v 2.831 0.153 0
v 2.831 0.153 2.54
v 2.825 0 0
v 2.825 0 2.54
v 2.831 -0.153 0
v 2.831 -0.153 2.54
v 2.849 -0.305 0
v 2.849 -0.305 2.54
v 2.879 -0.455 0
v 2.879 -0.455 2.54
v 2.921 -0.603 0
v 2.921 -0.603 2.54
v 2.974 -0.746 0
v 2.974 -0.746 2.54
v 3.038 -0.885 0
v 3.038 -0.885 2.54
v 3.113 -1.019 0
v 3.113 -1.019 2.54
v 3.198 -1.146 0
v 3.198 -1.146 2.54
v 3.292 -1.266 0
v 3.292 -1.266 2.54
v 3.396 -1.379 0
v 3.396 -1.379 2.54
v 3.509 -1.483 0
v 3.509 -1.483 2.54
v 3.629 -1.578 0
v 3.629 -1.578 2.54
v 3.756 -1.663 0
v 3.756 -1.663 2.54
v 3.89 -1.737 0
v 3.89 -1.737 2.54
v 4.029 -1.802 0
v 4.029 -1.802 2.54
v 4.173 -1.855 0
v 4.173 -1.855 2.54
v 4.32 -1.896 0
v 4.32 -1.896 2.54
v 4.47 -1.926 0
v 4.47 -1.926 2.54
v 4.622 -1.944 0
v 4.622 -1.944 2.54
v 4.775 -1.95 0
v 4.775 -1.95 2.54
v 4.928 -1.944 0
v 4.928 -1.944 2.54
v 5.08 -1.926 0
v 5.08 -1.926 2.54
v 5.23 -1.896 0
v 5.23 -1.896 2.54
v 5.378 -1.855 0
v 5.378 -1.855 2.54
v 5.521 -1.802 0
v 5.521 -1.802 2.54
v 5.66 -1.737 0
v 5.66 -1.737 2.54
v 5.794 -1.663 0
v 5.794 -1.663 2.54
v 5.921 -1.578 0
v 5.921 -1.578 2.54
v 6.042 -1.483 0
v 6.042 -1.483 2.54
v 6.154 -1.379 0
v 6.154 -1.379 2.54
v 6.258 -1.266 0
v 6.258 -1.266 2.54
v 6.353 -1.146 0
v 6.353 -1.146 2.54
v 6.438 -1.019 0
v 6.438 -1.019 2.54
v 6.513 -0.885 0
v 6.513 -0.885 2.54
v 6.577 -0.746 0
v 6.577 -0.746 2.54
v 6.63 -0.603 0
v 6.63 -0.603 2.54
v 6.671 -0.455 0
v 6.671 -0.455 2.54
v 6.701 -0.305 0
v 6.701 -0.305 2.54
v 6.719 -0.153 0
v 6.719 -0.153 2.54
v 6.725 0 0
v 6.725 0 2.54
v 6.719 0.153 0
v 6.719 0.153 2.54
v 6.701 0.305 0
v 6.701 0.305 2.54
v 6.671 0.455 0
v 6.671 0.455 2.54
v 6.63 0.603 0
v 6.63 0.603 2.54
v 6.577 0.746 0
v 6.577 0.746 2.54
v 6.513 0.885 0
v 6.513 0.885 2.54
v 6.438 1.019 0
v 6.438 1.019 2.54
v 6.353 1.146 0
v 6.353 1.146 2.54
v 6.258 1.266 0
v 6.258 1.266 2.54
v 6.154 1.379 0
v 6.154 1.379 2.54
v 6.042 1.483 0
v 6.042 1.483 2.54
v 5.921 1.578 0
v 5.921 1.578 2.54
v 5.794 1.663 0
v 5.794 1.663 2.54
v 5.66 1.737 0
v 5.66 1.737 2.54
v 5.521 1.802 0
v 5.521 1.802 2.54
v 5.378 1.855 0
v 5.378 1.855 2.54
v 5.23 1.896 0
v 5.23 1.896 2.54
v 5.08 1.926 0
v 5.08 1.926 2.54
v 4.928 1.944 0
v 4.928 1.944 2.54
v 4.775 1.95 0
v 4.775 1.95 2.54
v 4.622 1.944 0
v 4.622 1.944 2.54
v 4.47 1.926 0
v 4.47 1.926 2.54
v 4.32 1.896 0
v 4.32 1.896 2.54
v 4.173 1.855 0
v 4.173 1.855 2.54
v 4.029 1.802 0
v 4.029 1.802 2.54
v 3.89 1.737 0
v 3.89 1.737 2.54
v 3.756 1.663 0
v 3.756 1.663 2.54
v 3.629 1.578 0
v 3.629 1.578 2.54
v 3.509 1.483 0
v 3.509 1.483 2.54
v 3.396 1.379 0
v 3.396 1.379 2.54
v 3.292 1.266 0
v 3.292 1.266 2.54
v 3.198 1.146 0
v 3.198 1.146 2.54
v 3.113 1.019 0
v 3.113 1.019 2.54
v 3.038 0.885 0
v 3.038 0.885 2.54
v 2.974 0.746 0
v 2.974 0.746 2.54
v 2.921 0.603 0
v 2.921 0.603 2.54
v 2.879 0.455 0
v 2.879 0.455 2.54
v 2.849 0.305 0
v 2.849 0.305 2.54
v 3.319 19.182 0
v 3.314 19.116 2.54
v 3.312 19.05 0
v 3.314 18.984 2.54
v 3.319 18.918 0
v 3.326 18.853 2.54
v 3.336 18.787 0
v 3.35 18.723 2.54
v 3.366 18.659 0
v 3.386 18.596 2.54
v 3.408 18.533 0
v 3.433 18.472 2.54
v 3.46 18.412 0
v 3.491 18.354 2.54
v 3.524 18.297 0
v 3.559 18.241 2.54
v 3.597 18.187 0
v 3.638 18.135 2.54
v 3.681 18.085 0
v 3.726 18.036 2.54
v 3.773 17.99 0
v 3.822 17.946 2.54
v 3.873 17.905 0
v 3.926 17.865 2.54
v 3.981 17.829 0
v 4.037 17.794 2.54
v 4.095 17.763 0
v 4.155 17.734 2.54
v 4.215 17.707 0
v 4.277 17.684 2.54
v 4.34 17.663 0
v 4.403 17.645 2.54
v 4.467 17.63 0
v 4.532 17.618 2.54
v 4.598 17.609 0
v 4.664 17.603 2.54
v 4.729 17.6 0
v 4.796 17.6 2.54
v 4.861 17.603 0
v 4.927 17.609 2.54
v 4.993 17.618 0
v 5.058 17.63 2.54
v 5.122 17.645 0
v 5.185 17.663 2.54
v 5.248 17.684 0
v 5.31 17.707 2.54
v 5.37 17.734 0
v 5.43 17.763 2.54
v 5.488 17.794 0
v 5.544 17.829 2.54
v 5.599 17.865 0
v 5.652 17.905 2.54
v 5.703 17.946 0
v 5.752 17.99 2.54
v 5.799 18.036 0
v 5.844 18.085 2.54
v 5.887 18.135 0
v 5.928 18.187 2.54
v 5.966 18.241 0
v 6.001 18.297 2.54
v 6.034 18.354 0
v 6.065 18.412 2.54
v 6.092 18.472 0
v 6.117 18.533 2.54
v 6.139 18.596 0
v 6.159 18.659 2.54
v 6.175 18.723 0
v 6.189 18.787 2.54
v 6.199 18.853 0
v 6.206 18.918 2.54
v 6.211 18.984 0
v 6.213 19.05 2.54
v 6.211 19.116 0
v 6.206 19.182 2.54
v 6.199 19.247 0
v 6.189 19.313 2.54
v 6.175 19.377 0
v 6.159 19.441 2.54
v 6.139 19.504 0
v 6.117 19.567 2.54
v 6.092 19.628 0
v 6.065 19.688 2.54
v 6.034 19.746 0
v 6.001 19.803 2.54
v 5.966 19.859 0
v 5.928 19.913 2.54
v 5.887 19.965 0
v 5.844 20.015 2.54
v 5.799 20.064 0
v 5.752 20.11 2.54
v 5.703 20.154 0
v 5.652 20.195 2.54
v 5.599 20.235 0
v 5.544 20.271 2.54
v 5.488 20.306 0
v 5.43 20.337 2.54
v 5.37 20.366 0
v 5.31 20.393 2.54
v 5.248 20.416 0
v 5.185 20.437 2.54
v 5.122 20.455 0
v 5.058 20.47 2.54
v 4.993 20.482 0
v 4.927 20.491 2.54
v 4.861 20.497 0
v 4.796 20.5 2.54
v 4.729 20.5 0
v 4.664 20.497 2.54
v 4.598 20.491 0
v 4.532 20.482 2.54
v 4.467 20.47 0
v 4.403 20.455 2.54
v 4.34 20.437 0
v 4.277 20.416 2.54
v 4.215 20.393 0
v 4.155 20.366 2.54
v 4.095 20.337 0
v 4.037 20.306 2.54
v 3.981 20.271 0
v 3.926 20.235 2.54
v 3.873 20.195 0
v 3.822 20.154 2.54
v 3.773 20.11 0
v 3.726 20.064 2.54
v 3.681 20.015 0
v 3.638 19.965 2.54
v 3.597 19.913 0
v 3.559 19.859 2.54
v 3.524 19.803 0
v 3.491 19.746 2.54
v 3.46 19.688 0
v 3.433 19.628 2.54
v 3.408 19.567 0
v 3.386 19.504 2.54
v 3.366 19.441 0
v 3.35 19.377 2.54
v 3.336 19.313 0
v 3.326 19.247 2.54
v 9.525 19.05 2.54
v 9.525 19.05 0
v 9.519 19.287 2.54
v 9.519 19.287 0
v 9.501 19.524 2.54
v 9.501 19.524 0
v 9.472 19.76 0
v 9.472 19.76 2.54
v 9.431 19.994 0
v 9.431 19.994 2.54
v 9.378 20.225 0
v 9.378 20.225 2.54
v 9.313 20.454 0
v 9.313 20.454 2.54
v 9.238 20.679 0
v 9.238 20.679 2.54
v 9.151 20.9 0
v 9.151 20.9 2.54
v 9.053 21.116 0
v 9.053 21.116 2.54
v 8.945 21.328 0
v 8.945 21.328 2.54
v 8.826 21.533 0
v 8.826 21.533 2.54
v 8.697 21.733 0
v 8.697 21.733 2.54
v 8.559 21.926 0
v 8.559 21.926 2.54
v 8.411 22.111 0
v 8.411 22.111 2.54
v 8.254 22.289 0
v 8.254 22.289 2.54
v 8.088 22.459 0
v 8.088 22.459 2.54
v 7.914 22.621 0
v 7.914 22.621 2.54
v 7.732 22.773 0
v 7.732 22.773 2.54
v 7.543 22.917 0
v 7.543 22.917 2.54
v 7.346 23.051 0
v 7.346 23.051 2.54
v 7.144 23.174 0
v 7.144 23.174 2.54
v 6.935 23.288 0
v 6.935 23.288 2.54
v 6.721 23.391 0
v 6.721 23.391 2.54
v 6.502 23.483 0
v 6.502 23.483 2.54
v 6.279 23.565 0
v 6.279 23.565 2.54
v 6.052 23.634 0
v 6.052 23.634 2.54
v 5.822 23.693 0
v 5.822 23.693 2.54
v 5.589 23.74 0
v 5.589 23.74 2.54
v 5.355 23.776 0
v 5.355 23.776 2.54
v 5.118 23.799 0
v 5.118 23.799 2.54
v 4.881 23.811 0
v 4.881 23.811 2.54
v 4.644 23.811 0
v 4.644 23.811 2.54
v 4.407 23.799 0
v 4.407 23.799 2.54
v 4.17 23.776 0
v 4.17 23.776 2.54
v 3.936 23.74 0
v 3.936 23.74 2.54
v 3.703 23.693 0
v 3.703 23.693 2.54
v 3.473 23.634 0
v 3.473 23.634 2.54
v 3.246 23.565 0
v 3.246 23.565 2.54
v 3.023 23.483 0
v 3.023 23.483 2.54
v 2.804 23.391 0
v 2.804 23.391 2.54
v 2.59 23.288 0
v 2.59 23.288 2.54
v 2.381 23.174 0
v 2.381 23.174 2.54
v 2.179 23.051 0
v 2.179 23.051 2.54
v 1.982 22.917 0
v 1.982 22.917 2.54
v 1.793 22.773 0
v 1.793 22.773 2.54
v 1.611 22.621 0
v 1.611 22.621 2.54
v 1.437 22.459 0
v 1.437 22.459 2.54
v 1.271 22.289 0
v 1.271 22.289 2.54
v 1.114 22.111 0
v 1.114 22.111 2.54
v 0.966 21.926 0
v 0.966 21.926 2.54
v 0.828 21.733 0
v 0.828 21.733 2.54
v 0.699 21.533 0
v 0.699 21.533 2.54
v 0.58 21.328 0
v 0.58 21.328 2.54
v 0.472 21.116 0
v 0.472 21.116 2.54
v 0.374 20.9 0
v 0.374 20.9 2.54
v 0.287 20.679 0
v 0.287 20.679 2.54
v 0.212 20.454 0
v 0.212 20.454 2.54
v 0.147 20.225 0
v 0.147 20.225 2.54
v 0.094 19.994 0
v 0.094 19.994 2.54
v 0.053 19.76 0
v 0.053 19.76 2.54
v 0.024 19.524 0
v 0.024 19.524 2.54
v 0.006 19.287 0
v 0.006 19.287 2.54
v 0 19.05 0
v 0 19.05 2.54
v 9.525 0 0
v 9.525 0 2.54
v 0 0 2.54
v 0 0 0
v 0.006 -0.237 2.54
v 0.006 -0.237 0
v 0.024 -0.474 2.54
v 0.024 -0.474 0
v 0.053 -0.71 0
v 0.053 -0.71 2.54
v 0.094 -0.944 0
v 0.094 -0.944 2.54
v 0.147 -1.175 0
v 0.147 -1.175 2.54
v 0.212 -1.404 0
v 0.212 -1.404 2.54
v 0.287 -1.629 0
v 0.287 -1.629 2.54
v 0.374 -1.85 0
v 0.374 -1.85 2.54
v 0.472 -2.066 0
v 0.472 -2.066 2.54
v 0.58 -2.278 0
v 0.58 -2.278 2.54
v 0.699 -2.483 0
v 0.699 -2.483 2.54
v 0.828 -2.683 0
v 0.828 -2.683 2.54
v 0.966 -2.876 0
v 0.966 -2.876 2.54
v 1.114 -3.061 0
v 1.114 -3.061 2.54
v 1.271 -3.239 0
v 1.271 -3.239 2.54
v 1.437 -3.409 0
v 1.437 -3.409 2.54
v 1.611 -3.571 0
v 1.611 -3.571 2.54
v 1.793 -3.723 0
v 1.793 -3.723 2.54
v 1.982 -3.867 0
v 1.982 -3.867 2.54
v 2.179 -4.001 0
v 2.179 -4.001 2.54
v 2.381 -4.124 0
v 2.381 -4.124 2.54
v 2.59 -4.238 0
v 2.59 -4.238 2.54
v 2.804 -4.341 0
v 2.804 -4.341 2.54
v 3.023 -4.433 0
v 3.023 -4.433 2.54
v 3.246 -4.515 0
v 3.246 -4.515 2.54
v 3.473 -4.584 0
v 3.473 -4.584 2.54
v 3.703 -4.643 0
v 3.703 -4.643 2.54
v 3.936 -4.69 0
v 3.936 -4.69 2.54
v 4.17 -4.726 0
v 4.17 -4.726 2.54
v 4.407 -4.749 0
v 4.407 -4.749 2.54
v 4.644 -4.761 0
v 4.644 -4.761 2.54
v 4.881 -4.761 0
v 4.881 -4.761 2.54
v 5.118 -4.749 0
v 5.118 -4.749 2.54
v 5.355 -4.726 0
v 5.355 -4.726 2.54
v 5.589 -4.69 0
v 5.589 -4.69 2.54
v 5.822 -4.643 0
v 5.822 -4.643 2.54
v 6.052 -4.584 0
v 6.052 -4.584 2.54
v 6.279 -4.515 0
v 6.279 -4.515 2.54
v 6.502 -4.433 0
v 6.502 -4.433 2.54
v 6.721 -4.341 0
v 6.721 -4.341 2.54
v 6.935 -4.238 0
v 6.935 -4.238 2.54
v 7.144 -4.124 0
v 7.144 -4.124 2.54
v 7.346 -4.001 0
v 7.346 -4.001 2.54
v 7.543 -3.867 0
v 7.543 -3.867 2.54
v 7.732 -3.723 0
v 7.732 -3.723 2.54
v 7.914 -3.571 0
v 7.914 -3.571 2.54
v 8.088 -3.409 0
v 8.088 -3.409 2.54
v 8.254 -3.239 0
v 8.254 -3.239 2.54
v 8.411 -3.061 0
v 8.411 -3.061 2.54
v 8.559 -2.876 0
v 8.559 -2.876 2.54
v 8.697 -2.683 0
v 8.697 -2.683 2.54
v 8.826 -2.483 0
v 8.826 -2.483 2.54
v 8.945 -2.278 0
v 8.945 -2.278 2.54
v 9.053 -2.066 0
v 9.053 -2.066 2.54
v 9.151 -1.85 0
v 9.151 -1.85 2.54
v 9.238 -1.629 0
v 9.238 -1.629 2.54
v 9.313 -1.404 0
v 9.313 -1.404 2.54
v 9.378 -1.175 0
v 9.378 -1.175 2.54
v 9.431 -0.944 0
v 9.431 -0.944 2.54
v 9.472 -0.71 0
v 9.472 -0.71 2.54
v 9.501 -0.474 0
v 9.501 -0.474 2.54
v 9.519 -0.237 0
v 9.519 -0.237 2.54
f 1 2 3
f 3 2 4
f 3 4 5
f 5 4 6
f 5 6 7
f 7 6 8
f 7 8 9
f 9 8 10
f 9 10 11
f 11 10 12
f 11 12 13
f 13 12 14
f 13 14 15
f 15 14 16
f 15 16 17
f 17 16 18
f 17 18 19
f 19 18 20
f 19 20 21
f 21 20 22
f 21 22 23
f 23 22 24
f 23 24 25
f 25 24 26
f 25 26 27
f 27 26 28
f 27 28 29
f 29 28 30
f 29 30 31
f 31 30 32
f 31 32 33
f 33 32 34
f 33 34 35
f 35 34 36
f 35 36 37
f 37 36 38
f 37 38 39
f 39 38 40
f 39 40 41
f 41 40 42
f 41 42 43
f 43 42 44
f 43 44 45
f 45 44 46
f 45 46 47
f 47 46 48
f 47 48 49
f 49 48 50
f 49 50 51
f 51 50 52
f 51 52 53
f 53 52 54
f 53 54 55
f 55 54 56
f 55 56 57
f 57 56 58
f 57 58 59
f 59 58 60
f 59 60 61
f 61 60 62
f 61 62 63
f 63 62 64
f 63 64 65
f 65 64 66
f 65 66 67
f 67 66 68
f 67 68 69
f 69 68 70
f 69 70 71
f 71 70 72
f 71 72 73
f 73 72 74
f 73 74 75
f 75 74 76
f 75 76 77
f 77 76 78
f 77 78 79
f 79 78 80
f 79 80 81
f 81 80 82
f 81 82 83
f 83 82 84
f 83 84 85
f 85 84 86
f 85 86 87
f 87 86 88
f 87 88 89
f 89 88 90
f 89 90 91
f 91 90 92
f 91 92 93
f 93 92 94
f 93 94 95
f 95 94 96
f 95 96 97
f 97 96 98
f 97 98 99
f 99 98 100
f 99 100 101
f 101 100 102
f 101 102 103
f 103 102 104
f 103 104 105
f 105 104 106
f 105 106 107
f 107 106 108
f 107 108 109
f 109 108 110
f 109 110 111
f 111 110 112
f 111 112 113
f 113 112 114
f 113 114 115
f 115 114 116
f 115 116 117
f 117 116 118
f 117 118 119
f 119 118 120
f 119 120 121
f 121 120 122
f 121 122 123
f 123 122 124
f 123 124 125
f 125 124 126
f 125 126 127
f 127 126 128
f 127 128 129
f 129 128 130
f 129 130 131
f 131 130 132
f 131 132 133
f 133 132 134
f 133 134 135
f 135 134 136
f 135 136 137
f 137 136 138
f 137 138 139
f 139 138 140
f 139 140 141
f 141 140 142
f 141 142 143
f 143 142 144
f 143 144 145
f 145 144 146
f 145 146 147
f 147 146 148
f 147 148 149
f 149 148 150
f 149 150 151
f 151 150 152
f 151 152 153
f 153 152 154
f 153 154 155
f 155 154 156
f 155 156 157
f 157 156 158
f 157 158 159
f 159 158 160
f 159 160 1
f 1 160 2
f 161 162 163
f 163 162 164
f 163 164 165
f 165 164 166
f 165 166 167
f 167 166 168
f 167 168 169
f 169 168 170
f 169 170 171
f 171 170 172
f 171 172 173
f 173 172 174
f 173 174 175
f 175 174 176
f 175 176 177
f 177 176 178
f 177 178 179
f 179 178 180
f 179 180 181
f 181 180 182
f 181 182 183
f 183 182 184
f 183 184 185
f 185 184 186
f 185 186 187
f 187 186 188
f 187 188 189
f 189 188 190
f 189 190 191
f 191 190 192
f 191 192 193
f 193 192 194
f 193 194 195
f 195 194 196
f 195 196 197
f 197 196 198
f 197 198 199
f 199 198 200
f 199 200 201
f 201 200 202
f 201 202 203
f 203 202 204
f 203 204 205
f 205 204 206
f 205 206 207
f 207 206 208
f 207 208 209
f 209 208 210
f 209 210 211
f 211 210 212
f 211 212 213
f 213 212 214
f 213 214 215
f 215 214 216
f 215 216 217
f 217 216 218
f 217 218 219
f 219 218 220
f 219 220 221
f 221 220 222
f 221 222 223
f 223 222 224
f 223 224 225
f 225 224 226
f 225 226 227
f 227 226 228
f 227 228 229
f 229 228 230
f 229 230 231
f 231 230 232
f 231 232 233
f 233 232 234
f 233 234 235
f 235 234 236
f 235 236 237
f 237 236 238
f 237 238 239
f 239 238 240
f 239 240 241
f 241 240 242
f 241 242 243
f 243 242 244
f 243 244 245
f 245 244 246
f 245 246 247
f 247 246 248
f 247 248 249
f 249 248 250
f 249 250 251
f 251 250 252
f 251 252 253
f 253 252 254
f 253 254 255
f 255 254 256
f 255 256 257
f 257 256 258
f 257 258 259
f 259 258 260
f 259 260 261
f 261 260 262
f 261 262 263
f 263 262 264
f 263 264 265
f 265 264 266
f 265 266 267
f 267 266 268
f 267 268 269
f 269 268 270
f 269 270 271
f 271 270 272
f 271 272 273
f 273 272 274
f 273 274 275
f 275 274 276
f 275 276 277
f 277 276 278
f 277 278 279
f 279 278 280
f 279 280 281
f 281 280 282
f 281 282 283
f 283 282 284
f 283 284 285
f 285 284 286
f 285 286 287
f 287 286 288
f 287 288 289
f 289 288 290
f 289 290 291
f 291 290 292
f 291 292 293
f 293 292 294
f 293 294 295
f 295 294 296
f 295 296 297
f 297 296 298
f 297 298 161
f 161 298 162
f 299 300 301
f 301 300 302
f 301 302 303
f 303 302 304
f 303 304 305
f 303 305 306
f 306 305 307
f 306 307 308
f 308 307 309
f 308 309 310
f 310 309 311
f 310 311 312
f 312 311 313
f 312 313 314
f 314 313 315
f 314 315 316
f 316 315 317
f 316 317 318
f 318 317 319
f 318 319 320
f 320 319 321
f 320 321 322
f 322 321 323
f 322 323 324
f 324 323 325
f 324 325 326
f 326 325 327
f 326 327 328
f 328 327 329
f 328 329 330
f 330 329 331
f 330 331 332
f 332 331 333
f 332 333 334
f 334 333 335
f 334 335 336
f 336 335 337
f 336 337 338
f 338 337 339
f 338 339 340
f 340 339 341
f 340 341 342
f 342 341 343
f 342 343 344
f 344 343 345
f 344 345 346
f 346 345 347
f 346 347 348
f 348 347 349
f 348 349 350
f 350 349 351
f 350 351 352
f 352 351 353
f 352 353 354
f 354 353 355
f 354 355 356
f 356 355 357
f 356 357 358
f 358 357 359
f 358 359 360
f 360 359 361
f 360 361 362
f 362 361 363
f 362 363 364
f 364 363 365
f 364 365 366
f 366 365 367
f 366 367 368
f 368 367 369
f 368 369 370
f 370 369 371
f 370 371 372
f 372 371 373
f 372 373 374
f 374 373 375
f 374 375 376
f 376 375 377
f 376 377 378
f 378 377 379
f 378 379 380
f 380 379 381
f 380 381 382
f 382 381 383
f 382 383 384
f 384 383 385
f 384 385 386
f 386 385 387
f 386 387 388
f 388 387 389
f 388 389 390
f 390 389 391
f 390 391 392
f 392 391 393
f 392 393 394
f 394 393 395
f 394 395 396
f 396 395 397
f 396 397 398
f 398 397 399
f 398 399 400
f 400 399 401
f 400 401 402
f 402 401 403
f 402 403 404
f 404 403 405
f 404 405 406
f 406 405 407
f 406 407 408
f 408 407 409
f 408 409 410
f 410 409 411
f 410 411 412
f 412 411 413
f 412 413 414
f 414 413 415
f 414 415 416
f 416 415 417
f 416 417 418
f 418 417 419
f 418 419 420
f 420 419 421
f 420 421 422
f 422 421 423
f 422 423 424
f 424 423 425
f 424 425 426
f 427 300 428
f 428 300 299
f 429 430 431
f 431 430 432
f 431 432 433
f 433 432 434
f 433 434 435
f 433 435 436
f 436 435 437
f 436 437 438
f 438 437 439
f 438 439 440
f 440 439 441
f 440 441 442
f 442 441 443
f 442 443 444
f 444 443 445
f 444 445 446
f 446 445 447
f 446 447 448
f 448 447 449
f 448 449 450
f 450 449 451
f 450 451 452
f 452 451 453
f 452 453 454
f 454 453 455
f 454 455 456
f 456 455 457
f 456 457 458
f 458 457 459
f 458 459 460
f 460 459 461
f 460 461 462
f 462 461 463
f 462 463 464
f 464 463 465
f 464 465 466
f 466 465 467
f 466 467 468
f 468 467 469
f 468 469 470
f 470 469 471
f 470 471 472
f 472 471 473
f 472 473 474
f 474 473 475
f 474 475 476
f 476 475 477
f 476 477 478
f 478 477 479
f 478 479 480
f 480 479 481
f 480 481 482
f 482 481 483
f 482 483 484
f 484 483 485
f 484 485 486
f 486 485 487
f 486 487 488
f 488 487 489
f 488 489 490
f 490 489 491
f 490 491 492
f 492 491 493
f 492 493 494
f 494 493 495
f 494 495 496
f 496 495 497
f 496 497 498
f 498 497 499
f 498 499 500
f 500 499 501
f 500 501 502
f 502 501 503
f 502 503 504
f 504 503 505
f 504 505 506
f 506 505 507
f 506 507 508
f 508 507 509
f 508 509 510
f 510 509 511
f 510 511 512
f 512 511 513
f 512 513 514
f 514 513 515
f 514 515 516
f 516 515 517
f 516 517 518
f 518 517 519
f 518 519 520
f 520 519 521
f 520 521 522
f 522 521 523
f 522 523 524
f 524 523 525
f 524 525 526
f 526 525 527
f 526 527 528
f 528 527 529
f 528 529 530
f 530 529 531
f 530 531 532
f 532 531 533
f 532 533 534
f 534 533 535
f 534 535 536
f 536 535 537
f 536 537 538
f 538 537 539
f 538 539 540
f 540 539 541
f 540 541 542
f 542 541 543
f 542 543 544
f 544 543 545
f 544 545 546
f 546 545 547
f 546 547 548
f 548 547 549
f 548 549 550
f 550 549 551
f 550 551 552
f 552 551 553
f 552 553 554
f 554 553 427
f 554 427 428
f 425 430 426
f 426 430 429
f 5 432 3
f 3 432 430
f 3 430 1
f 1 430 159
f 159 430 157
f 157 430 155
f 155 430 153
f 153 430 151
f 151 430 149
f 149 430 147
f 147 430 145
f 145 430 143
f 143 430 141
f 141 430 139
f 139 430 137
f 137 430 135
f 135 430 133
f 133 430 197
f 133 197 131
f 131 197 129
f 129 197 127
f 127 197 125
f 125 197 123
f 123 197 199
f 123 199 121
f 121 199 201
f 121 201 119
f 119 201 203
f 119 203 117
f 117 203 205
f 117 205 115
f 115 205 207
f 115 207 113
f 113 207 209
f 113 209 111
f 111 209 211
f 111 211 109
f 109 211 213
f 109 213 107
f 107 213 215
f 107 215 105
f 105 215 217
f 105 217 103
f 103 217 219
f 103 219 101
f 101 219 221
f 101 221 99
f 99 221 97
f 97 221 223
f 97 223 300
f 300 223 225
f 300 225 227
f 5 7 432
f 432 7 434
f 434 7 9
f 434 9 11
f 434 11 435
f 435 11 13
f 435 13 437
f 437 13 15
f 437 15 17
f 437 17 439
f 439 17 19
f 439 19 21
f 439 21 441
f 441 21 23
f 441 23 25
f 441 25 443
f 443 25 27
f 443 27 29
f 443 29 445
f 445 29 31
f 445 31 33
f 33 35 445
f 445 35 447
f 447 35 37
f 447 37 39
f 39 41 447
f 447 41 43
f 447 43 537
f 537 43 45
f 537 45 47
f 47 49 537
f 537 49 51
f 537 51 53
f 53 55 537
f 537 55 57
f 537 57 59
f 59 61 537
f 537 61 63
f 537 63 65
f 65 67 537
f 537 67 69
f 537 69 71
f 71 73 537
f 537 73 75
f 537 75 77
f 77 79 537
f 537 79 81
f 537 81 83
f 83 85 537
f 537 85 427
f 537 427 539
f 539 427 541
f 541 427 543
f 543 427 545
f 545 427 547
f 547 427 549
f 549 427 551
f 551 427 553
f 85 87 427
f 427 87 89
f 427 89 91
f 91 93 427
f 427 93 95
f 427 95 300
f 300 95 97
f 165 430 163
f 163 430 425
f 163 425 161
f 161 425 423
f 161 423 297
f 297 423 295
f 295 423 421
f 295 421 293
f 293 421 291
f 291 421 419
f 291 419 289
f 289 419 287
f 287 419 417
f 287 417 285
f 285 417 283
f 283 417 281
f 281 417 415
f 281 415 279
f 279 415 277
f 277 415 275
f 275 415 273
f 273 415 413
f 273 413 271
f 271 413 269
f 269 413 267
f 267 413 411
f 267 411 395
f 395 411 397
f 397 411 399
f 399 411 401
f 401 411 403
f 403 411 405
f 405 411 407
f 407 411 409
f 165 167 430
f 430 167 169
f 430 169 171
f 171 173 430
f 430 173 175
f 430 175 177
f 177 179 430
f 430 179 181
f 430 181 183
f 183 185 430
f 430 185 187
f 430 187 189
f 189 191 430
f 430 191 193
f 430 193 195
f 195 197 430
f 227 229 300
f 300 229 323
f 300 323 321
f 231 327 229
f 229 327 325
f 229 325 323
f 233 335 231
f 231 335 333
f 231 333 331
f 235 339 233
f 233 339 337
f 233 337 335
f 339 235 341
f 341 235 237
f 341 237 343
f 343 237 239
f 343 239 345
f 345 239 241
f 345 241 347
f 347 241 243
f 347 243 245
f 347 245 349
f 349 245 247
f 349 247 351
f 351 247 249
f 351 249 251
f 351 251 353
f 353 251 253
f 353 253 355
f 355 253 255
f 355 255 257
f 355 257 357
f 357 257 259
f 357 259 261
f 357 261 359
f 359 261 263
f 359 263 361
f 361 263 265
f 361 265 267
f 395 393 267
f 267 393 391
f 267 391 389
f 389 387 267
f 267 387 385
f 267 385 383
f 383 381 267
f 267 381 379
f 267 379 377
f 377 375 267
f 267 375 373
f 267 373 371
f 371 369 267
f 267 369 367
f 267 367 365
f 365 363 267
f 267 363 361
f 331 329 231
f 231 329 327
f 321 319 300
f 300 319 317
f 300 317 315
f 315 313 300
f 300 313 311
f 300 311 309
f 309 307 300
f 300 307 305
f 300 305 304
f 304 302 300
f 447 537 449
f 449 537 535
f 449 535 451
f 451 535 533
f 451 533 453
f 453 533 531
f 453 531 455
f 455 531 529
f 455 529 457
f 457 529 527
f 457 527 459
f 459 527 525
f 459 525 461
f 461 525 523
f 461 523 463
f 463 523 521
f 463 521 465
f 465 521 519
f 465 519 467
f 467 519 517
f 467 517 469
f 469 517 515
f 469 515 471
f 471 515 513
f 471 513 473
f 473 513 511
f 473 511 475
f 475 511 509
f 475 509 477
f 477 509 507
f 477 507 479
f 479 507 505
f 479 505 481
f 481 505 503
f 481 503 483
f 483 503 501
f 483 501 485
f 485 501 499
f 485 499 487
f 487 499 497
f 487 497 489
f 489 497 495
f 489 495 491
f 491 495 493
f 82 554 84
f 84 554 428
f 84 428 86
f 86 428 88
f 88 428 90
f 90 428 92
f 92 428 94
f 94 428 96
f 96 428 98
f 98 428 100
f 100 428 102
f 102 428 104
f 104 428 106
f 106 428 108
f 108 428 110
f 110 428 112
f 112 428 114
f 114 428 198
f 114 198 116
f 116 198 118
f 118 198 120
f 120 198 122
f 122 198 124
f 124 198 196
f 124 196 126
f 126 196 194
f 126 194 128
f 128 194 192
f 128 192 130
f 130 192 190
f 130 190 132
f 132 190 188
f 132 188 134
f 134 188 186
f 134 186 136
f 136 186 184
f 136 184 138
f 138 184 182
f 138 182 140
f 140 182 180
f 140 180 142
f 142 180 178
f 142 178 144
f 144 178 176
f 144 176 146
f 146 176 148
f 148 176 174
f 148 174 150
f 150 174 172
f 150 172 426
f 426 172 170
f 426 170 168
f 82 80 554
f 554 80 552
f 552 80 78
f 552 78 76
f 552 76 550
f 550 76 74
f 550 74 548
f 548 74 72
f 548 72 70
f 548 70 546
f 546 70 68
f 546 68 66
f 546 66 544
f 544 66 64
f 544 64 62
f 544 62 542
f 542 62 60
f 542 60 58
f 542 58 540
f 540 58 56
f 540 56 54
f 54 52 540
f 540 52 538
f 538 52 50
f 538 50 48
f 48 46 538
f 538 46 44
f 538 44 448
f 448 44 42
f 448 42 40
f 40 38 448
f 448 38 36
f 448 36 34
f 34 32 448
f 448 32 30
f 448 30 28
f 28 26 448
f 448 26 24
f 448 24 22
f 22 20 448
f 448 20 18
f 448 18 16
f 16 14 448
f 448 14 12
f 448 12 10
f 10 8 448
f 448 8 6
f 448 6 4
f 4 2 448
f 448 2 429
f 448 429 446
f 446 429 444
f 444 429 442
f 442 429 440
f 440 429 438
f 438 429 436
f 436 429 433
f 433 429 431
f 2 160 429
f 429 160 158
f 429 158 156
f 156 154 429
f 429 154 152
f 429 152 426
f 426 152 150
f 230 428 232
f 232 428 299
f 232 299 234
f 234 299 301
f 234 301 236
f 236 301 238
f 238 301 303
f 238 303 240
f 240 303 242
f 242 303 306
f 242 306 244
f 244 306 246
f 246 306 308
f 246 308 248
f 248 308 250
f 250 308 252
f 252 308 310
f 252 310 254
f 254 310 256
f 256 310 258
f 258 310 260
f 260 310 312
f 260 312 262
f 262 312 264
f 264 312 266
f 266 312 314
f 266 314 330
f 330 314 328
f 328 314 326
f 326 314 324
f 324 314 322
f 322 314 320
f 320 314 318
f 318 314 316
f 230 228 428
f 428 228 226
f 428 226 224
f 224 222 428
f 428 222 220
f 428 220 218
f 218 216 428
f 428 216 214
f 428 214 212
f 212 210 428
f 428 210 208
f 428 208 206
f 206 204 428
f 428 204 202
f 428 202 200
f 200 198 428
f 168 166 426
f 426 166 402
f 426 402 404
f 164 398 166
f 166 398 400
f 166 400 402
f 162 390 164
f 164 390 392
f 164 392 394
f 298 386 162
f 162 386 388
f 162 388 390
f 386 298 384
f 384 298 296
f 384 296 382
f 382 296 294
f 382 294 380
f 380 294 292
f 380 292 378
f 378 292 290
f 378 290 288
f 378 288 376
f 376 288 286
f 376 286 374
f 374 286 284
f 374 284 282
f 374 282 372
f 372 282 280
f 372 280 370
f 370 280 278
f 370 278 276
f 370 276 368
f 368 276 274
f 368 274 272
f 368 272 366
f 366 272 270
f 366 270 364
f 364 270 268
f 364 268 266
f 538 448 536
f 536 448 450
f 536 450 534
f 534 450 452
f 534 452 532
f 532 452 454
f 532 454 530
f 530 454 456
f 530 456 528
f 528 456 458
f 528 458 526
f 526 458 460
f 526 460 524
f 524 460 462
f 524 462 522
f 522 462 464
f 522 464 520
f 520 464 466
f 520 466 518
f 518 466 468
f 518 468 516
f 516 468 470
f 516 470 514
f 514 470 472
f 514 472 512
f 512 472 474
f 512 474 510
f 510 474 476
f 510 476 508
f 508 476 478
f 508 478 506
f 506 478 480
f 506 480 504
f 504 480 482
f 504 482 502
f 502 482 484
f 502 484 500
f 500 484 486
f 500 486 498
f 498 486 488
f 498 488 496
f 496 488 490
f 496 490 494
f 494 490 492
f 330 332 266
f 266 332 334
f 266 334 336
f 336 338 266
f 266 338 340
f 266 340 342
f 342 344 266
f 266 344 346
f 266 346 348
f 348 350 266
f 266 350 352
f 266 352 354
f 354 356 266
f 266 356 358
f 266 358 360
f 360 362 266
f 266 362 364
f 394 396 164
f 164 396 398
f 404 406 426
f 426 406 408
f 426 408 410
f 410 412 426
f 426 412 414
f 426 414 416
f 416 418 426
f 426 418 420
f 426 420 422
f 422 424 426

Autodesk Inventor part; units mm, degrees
ref_plane "YZ Plane" through (0, 0, 0) normal (1, 0, 0) x (0, 1, 0)
ref_plane "XZ Plane" through (0, 0, 0) normal (0, 1, 0) x (-1, 0, 0)
ref_plane "XY Plane" through (0, 0, 0) normal (0, 0, 1) x (1, 0, 0)
sketch "Sketch1" plane through (0, 0, 0) normal (0, 0, 1) x (1, 0, 0)
  line L0 (9.525, 0) -> (9.525, 19.05)
  line L1 (0, 19.05) -> (0, 0)
  arc A0 (9.525, 19.05) -> (0, 19.05) centre (4.7625, 19.05) ccw
  arc A1 (0, 0) -> (9.525, 0) centre (4.7625, 0) ccw
  dimension "d0" = 9.525
  dimension "d1" = 19.05
extrude "Extrusion1" add sketch "Sketch1" along normal blind 2.54
sketch "Sketch2" plane through (0, 0, 2.54) normal (0, 0, 1) x (1, 0, 0)
  arc A0 (9.525, 19.05) -> (0, 19.05) centre (4.7625, 19.05) ccw projected
  point P0 (0, 0)
  dimension "d18" = 4.7625
hole "Hole1" at (4.7625, 19.05, 2.54) direction (0, 0, -1) diameter 2.9 end through all
sketch "Sketch3" plane through (0, 0, 2.54) normal (0, 0, 1) x (1, 0, 0)
  circle A0 centre (4.7625, 19.05) radius 1.45 projected
  point P0 (0, 0)
  point P1 (4.7752, 0)
  dimension "d19" = 4.7752
  dimension "d20" = 19.05
  dimension "d21" = 2.9
hole "Hole2" at (4.7752, 0, 2.54) direction (0, 0, -1) diameter 3.9 end through all
